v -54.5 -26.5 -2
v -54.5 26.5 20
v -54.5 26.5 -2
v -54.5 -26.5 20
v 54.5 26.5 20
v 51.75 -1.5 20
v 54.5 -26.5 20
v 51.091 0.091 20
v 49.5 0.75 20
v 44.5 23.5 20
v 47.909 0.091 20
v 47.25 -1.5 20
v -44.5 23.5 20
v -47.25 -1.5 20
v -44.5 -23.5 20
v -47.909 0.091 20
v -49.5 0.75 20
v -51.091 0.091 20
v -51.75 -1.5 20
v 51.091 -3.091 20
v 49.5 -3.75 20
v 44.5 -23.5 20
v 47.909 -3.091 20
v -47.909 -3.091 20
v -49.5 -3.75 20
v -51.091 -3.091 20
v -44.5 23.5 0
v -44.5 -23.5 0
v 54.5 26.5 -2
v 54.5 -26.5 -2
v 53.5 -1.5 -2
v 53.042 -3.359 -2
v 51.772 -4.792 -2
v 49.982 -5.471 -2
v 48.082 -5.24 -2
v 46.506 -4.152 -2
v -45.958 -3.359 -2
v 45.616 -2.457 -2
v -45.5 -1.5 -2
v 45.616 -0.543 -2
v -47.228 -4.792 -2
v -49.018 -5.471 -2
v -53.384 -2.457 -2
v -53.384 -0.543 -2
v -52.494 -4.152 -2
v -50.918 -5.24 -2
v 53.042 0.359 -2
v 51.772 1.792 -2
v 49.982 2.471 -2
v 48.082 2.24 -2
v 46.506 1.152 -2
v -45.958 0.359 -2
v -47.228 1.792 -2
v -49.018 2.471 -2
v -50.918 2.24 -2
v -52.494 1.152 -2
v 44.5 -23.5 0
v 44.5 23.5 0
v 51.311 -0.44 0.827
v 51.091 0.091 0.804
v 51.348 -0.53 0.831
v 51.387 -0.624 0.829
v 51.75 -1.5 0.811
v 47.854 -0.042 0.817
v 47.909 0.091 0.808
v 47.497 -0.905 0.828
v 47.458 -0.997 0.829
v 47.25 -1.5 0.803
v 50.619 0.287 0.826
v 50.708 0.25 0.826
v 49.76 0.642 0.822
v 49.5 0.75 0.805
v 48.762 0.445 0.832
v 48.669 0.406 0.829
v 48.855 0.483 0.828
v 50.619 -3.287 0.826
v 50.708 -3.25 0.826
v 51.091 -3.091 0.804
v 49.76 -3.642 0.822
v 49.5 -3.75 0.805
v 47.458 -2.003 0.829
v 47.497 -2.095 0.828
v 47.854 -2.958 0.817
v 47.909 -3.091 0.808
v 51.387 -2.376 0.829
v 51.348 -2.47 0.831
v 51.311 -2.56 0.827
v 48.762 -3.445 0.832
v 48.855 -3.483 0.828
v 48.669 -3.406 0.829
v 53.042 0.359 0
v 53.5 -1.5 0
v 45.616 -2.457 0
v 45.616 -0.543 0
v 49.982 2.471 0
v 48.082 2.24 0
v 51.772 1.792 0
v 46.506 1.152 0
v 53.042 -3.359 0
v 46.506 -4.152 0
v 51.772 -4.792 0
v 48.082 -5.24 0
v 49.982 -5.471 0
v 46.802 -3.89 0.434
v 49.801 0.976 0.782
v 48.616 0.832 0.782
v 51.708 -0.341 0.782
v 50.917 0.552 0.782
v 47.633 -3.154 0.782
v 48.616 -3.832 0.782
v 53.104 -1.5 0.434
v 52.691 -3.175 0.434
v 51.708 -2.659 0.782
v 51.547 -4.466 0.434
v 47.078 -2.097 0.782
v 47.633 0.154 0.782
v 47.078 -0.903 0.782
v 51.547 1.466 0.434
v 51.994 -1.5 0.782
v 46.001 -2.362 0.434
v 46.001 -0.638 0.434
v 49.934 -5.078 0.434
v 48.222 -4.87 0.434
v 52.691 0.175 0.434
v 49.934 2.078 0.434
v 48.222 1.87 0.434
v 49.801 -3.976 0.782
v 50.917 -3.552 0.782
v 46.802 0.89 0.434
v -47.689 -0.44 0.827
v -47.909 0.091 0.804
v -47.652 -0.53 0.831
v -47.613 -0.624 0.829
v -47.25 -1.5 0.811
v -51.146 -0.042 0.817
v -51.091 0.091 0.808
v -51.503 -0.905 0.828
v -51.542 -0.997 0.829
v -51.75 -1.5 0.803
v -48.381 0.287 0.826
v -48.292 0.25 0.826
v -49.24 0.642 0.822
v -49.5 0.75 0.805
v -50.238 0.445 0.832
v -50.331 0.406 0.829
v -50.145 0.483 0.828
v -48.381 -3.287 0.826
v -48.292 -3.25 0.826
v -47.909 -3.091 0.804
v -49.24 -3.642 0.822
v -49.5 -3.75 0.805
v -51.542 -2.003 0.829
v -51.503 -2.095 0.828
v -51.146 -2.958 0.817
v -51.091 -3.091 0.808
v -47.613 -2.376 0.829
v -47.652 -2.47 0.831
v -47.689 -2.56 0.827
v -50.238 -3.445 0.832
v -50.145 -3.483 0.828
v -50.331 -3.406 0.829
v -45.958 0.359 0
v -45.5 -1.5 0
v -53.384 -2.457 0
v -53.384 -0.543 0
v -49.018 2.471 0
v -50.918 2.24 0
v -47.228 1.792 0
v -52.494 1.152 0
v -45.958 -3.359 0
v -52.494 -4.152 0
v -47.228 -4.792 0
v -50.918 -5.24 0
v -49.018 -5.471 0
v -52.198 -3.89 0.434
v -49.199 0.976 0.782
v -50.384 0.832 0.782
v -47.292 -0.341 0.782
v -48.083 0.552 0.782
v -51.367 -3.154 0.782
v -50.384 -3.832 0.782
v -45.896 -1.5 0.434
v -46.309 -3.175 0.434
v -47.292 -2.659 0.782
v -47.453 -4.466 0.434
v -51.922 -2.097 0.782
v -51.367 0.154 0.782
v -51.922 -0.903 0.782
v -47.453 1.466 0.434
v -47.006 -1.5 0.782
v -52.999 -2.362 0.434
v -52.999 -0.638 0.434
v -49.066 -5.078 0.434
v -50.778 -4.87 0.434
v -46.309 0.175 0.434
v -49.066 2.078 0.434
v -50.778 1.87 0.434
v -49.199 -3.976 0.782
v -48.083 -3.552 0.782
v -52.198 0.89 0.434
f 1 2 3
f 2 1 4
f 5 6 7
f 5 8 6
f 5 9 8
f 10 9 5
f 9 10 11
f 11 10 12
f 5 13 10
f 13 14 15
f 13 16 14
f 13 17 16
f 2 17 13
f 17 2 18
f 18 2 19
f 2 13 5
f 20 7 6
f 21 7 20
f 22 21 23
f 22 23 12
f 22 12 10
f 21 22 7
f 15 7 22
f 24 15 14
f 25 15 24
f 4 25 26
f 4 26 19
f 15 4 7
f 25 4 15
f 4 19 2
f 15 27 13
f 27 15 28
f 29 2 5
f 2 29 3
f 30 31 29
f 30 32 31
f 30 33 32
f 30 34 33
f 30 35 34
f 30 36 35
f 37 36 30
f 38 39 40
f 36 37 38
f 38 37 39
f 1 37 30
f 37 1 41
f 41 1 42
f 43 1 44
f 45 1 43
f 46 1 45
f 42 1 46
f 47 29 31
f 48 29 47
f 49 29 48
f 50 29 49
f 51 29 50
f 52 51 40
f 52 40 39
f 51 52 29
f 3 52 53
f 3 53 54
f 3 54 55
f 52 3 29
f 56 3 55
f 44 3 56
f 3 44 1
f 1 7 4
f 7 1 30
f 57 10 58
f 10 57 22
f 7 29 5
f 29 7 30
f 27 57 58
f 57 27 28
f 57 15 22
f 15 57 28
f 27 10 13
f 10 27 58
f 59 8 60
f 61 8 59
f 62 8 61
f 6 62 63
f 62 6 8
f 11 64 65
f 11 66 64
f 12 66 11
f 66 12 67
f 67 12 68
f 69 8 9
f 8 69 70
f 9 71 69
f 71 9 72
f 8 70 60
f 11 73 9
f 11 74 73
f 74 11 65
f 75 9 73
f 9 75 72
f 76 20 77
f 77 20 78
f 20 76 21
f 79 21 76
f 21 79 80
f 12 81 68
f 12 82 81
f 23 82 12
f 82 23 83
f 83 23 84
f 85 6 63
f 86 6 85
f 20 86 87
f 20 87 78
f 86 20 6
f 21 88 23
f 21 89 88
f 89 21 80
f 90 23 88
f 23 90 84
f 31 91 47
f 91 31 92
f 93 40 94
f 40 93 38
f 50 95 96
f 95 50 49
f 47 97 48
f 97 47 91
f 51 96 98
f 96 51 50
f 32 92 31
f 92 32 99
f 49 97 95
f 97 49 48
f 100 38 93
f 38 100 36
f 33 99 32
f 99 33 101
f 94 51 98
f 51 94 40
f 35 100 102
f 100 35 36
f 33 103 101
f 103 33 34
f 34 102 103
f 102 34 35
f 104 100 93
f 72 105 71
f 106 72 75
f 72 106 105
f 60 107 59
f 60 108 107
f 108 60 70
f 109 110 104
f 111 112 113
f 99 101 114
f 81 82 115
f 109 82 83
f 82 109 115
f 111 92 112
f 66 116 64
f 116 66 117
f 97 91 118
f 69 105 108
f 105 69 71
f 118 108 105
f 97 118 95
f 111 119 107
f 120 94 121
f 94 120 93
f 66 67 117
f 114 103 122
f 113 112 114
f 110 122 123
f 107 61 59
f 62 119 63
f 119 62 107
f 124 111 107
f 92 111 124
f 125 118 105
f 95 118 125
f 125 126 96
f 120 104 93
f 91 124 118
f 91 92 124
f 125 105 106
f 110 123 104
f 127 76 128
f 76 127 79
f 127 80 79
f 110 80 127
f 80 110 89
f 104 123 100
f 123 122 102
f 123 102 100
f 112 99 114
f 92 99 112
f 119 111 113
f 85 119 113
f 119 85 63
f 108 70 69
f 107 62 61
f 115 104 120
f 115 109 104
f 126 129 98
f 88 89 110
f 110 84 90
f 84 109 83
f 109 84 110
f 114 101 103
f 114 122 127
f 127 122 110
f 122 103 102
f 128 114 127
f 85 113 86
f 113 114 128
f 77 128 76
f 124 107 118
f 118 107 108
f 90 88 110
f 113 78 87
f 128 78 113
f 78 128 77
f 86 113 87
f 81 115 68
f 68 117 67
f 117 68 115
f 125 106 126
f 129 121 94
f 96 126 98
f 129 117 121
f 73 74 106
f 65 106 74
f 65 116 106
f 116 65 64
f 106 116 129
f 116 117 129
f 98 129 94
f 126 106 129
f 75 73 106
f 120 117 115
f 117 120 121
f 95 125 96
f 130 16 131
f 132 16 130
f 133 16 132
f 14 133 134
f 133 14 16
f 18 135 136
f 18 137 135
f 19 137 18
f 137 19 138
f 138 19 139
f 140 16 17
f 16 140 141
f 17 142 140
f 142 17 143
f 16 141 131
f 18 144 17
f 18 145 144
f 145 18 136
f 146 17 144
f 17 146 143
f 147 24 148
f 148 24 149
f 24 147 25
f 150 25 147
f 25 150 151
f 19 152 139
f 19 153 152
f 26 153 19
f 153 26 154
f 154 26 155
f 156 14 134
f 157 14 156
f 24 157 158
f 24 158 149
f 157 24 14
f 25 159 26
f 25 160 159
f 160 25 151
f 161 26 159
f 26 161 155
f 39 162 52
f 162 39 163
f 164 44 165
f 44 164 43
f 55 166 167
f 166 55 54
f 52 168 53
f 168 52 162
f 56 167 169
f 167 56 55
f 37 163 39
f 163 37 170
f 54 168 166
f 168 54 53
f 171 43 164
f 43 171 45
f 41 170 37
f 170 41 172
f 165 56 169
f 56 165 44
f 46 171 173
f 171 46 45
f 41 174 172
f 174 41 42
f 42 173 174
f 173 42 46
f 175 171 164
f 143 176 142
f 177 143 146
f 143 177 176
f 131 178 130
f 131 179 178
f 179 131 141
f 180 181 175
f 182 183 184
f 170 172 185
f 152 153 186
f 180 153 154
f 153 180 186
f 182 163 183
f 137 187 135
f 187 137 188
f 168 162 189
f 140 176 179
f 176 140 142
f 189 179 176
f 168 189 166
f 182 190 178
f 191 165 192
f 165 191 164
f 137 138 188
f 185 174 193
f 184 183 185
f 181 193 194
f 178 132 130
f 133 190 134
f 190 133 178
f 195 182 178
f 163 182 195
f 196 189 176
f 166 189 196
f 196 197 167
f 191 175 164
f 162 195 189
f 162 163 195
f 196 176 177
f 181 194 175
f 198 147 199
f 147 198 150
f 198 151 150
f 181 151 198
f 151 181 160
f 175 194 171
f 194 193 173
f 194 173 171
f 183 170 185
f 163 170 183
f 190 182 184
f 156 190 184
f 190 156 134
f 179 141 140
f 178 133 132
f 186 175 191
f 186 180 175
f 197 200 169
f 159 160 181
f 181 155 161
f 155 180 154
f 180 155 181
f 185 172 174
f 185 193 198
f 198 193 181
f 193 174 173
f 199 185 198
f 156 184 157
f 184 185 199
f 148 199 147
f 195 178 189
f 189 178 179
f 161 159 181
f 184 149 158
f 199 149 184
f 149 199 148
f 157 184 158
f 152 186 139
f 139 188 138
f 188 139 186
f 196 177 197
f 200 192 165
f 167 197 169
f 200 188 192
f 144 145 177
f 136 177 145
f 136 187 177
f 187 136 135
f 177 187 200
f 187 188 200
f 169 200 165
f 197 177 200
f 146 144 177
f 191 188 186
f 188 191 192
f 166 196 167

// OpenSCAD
/* 
 * Telebot 1.1
 * Copyright (c) 2015-2016 by Paul-Louis Ageneau
 *
 * This program is free software: you can redistribute it and/or modify
 * it under the terms of the GNU General Public License as published by
 * the Free Software Foundation, either version 3 of the License, or
 * (at your option) any later version.
 *
 * This program is distributed in the hope that it will be useful,
 * but WITHOUT ANY WARRANTY; without even the implied warranty of
 * MERCHANTABILITY or FITNESS FOR A PARTICULAR PURPOSE.  See the
 * GNU General Public License for more details.
 *
 * You should have received a copy of the GNU General Public License
 * along with this program.  If not, see <http://www.gnu.org/licenses/>.
 */

// Battery cover

card_width = 43;
card_height = 48;
card_space = 7;

motor_width = 12;
motor_height = 10;
motor_depth = 25;

width = (motor_depth+ 3 + 2 )*2 + card_width + 3*2;
depth = 53;
height = 22;
side_thickness = 10;

difference() {
    union() {
        translate([0, 0, -1]) cube([width, depth, 2], center = true);	

        translate([0,-depth/2+3/2, height/2-2]) cube([width, 3, height], center = true);
        translate([0, depth/2-3/2, height/2-2]) cube([width, 3, height], center = true);

        difference() {
            union() {
                translate([-width/2+side_thickness/2, 0, height/2-2]) cube([side_thickness, depth, height], center = true);
                translate([width/2-side_thickness/2, 0, height/2-2]) cube([side_thickness, depth, height], center = true);
            }
        }
    }
    
    union() {
        translate([width/2-side_thickness/2, -depth/2+25, 0]) 
            screw_hole(3);
        translate([-width/2+side_thickness/2, -depth/2+25, 0]) 
            screw_hole(3);
    }
}

module screw_hole(depth = 3)
{
    union() {
            cylinder(h = height*2, r = 2.25, center=true);
            translate([0, 0, -3]) cylinder(h = depth*2, r = 4, center=true);
            translate([0, 0, depth-3]) scale([1,1,0.25]) sphere(r = 4, center = true);
    }
}
